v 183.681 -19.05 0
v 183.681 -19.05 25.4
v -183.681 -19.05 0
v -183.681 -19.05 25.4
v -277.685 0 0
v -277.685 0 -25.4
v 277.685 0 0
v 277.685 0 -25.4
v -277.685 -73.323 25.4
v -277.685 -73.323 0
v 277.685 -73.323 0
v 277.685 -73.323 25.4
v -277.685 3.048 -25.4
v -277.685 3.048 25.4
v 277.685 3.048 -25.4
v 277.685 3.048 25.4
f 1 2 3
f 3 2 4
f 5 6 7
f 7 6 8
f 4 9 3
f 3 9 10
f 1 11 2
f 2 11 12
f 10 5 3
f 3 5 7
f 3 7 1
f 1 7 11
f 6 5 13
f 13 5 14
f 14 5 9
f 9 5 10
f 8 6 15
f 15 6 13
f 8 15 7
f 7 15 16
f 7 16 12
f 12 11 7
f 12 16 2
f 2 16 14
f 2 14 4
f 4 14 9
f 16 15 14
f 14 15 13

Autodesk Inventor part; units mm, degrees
ref_plane "YZ Plane" through (0, 0, 0) normal (1, 0, 0) x (0, 1, 0)
ref_plane "XZ Plane" through (0, 0, 0) normal (0, 1, 0) x (-1, 0, 0)
ref_plane "XY Plane" through (0, 0, 0) normal (0, 0, 1) x (1, 0, 0)
sketch "Sketch1" plane through (0, 0, 0) normal (0, 1, 0) x (-1, 0, 0)
  line L0 (277.6855, 25.4) -> (-277.6855, 25.4)
  line L1 (-277.6855, 25.4) -> (-277.6855, -25.4)
  line L2 (-277.6855, -25.4) -> (277.6855, -25.4)
  line L3 (277.6855, -25.4) -> (277.6855, 25.4)
  line L4 (277.6855, 25.4) -> (-277.6855, -25.4) construction
  line L5 (-277.6855, 25.4) -> (277.6855, -25.4) construction
  point P0 (0, 0)
  dimension "d0" = 555.371
  dimension "d1" = 50.8
extrude "Extrusion1" add sketch "Sketch1" along normal blind 3.048
sketch "Sketch2" plane through (-277.6855, 0, 25.4) normal (0, 0, 1) x (1, 0, 0)
  line L0 (0, 0) -> (555.371, 0) projected
  line L1 (555.371, 0) -> (428.371, 0)
  line L2 (555.371, 0) -> (555.371, -73.3235)
  line L3 (555.371, -73.3235) -> (428.371, 0)
  line L4 (0, 0) -> (127, 0)
  line L5 (127, 0) -> (0, -73.3235)
  line L6 (0, -73.3235) -> (0, 0)
  point P0 (277.6855, 0)
  dimension "d6" = 127
  dimension "d8" = 127
  dimension "d9" = 30
  dimension "d15" = 30
extrude "Extrusion2" add sketch "Sketch2" against normal blind 25.4 contours L0 L2 L3
extrude "Extrusion3" add sketch "Sketch2" against normal blind 25.4 contours L0 L5 L6
sketch "Sketch3" plane through (0, 0, 0) normal (0, -1, 0) x (1, 0, 0)
  line L0 (-277.6855, 25.4) -> (277.6855, 25.4) construction
  line L1 (-277.6855, 25.4) -> (0, 25.4) construction
  line L2 (0, 0) -> (0, 25.4) construction
  line L3 (184.15, 25.4) -> (-184.15, 25.4)
  line L4 (-184.15, 25.4) -> (-184.15, 0)
  line L5 (-184.15, 0) -> (184.15, 0)
  line L6 (184.15, 0) -> (184.15, 25.4)
  line L7 (184.15, 25.4) -> (-184.15, 0) construction
  line L8 (-184.15, 25.4) -> (184.15, 0) construction
  point P0 (0, 12.7)
  dimension "d16" = 368.3
extrude "Extrusion4" add sketch "Sketch3" along normal blind 19.05
equation "\"d6\" = d8"
equation "\"d15\" = d9"
properties part number "Wire Housing Lid vglue"
